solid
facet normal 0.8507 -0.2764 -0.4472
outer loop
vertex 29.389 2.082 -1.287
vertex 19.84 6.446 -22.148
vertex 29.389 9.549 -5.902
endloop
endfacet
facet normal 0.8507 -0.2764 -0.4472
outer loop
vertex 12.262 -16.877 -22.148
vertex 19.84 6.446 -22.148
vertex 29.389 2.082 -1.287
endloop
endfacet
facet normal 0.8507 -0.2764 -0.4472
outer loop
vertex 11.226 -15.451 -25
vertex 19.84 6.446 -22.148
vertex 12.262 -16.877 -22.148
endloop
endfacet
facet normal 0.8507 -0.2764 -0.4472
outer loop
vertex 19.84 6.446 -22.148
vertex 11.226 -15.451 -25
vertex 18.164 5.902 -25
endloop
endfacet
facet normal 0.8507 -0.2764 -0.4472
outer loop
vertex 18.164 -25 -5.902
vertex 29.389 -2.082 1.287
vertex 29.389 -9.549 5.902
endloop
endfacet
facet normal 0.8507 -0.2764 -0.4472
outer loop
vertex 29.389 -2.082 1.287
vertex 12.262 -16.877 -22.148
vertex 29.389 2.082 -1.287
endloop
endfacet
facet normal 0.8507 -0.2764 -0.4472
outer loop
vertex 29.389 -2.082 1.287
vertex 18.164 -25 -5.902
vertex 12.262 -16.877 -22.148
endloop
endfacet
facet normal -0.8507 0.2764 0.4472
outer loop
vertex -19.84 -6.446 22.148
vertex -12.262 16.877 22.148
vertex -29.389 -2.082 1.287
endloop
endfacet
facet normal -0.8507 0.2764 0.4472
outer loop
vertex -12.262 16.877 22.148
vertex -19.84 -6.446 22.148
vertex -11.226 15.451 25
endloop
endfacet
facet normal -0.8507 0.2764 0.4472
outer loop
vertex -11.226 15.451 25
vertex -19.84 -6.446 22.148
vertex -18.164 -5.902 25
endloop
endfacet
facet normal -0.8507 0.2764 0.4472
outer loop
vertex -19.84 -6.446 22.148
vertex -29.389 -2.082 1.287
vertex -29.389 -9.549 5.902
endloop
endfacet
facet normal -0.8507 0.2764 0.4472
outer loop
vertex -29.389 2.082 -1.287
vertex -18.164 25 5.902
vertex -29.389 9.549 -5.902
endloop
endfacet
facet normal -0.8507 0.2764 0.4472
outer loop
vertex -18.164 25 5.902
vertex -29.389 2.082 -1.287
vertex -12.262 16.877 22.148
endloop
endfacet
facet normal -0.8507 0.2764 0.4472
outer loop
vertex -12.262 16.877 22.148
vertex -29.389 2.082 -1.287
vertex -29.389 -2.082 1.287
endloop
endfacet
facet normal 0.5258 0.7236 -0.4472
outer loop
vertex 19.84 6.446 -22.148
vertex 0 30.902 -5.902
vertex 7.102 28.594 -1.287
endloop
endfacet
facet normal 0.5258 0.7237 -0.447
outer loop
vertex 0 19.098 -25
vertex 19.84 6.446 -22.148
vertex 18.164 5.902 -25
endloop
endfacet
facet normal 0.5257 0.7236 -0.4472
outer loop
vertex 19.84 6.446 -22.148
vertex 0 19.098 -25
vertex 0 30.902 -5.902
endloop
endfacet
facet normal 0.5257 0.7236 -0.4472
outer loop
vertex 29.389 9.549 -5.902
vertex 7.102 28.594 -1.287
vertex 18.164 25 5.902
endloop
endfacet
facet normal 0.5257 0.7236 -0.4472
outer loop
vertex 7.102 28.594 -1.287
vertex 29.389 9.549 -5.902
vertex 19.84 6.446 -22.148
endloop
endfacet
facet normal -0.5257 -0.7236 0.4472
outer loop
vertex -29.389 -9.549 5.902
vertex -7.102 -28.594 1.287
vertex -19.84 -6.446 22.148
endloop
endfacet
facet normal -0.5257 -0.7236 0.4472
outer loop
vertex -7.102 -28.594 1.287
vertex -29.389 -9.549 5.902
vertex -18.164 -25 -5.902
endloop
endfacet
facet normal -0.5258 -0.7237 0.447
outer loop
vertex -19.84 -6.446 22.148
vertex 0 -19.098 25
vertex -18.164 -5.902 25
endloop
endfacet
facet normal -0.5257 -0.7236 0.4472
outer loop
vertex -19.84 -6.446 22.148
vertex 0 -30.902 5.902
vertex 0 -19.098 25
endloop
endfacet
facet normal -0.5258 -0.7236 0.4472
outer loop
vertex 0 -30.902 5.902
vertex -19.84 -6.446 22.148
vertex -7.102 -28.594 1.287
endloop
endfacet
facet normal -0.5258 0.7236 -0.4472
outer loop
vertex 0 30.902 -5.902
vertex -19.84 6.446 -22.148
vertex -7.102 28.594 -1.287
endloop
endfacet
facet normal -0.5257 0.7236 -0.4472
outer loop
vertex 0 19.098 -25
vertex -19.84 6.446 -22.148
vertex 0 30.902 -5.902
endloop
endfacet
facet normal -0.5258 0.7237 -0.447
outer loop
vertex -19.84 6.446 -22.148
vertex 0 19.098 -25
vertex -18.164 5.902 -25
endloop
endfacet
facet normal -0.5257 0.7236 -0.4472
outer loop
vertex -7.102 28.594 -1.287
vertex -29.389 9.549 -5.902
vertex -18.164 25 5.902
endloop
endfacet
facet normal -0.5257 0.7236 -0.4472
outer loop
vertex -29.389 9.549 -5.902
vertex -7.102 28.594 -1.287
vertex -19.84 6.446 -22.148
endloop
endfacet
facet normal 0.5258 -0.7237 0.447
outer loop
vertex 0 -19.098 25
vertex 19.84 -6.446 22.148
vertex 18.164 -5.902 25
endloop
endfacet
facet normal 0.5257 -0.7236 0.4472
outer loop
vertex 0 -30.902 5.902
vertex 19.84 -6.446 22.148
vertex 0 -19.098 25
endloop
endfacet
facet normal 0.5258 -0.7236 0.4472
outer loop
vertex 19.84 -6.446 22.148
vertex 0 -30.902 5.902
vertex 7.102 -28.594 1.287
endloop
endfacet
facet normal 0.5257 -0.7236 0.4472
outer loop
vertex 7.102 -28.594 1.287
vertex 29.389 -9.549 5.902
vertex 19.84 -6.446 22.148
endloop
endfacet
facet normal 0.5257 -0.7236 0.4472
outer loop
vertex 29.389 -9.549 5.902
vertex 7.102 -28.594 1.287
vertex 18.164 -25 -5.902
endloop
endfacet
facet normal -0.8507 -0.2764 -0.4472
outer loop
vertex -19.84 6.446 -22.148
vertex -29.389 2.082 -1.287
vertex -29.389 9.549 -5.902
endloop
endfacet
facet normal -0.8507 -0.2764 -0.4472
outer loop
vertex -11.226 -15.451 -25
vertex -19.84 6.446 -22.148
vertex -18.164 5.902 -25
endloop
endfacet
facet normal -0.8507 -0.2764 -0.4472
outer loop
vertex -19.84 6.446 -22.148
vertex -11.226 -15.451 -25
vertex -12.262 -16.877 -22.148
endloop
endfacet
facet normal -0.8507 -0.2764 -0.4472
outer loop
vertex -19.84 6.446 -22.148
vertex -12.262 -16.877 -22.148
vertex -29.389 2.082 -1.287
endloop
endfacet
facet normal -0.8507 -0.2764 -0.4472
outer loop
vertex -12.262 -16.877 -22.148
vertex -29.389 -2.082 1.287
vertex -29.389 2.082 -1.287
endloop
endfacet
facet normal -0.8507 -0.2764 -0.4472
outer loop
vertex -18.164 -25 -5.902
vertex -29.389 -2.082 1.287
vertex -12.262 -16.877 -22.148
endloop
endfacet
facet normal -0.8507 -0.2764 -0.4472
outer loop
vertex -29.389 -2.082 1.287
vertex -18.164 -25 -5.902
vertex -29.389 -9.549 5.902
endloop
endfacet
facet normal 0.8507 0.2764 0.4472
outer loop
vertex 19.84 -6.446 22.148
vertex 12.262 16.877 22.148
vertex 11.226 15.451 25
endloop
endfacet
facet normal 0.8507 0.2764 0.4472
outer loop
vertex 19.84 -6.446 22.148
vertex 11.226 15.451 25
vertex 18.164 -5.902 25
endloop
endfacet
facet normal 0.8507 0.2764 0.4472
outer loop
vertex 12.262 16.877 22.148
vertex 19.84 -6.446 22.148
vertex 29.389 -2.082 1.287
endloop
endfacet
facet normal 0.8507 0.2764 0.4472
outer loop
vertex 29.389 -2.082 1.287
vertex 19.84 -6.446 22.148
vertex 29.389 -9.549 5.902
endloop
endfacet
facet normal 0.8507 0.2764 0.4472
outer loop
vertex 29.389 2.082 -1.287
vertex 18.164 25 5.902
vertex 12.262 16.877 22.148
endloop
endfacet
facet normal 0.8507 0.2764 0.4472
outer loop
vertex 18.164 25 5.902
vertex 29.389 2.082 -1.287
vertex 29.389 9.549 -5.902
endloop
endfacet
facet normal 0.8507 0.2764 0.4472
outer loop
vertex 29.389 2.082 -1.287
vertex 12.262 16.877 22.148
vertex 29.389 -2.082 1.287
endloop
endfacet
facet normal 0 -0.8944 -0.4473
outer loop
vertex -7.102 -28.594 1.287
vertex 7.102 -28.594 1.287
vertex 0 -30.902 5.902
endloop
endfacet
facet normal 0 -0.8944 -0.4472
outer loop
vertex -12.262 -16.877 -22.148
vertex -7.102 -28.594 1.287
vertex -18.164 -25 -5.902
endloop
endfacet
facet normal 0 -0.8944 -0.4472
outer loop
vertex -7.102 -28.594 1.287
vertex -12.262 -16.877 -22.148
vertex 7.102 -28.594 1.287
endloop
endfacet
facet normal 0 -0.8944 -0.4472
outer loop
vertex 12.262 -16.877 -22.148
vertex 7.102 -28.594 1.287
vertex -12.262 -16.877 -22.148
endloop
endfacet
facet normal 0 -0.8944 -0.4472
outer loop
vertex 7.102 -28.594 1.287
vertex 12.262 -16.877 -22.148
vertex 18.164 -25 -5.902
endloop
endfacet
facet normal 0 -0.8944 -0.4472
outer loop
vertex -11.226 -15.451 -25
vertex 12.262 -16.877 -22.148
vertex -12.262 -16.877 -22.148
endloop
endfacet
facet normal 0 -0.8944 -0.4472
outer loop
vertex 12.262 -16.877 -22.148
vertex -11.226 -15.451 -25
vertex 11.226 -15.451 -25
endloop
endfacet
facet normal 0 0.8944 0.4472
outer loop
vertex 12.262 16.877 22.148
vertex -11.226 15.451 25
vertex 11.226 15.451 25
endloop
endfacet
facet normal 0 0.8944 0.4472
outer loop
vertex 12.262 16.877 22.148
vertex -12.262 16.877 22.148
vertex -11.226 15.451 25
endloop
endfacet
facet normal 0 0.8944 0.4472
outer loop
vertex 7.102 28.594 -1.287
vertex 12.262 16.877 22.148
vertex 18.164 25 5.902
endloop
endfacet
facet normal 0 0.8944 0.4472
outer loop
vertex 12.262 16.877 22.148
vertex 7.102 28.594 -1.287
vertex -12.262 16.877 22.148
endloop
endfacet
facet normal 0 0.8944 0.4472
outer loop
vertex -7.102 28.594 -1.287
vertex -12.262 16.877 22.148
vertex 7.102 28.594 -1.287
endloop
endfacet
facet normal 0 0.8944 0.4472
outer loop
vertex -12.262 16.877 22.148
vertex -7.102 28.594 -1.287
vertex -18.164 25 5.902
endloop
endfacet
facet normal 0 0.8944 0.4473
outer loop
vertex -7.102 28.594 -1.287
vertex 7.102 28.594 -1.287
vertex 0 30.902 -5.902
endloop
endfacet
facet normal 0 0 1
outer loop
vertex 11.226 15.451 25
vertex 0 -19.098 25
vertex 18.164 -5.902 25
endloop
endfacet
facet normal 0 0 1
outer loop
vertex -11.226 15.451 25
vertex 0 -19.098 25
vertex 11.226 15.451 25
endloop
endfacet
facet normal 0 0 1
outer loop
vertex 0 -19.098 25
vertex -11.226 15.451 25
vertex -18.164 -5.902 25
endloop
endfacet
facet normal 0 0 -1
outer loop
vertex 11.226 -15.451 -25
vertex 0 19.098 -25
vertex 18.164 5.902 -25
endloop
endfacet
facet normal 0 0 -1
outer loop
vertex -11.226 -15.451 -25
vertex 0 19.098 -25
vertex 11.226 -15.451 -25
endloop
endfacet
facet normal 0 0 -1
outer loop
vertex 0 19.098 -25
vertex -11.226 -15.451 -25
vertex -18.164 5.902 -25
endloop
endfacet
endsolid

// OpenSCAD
module box(size) {
    cube([2*size, 2*size, size], center = true); 
}

module dodecahedron(size) {
      dihedral = 116.565;
      intersection(){
            box(size);
            intersection_for(i=[1:5])  { 
                rotate([dihedral, 0, 360 / 5 * i])  box(size); 
           }
      }
}

dodecahedron(50);
